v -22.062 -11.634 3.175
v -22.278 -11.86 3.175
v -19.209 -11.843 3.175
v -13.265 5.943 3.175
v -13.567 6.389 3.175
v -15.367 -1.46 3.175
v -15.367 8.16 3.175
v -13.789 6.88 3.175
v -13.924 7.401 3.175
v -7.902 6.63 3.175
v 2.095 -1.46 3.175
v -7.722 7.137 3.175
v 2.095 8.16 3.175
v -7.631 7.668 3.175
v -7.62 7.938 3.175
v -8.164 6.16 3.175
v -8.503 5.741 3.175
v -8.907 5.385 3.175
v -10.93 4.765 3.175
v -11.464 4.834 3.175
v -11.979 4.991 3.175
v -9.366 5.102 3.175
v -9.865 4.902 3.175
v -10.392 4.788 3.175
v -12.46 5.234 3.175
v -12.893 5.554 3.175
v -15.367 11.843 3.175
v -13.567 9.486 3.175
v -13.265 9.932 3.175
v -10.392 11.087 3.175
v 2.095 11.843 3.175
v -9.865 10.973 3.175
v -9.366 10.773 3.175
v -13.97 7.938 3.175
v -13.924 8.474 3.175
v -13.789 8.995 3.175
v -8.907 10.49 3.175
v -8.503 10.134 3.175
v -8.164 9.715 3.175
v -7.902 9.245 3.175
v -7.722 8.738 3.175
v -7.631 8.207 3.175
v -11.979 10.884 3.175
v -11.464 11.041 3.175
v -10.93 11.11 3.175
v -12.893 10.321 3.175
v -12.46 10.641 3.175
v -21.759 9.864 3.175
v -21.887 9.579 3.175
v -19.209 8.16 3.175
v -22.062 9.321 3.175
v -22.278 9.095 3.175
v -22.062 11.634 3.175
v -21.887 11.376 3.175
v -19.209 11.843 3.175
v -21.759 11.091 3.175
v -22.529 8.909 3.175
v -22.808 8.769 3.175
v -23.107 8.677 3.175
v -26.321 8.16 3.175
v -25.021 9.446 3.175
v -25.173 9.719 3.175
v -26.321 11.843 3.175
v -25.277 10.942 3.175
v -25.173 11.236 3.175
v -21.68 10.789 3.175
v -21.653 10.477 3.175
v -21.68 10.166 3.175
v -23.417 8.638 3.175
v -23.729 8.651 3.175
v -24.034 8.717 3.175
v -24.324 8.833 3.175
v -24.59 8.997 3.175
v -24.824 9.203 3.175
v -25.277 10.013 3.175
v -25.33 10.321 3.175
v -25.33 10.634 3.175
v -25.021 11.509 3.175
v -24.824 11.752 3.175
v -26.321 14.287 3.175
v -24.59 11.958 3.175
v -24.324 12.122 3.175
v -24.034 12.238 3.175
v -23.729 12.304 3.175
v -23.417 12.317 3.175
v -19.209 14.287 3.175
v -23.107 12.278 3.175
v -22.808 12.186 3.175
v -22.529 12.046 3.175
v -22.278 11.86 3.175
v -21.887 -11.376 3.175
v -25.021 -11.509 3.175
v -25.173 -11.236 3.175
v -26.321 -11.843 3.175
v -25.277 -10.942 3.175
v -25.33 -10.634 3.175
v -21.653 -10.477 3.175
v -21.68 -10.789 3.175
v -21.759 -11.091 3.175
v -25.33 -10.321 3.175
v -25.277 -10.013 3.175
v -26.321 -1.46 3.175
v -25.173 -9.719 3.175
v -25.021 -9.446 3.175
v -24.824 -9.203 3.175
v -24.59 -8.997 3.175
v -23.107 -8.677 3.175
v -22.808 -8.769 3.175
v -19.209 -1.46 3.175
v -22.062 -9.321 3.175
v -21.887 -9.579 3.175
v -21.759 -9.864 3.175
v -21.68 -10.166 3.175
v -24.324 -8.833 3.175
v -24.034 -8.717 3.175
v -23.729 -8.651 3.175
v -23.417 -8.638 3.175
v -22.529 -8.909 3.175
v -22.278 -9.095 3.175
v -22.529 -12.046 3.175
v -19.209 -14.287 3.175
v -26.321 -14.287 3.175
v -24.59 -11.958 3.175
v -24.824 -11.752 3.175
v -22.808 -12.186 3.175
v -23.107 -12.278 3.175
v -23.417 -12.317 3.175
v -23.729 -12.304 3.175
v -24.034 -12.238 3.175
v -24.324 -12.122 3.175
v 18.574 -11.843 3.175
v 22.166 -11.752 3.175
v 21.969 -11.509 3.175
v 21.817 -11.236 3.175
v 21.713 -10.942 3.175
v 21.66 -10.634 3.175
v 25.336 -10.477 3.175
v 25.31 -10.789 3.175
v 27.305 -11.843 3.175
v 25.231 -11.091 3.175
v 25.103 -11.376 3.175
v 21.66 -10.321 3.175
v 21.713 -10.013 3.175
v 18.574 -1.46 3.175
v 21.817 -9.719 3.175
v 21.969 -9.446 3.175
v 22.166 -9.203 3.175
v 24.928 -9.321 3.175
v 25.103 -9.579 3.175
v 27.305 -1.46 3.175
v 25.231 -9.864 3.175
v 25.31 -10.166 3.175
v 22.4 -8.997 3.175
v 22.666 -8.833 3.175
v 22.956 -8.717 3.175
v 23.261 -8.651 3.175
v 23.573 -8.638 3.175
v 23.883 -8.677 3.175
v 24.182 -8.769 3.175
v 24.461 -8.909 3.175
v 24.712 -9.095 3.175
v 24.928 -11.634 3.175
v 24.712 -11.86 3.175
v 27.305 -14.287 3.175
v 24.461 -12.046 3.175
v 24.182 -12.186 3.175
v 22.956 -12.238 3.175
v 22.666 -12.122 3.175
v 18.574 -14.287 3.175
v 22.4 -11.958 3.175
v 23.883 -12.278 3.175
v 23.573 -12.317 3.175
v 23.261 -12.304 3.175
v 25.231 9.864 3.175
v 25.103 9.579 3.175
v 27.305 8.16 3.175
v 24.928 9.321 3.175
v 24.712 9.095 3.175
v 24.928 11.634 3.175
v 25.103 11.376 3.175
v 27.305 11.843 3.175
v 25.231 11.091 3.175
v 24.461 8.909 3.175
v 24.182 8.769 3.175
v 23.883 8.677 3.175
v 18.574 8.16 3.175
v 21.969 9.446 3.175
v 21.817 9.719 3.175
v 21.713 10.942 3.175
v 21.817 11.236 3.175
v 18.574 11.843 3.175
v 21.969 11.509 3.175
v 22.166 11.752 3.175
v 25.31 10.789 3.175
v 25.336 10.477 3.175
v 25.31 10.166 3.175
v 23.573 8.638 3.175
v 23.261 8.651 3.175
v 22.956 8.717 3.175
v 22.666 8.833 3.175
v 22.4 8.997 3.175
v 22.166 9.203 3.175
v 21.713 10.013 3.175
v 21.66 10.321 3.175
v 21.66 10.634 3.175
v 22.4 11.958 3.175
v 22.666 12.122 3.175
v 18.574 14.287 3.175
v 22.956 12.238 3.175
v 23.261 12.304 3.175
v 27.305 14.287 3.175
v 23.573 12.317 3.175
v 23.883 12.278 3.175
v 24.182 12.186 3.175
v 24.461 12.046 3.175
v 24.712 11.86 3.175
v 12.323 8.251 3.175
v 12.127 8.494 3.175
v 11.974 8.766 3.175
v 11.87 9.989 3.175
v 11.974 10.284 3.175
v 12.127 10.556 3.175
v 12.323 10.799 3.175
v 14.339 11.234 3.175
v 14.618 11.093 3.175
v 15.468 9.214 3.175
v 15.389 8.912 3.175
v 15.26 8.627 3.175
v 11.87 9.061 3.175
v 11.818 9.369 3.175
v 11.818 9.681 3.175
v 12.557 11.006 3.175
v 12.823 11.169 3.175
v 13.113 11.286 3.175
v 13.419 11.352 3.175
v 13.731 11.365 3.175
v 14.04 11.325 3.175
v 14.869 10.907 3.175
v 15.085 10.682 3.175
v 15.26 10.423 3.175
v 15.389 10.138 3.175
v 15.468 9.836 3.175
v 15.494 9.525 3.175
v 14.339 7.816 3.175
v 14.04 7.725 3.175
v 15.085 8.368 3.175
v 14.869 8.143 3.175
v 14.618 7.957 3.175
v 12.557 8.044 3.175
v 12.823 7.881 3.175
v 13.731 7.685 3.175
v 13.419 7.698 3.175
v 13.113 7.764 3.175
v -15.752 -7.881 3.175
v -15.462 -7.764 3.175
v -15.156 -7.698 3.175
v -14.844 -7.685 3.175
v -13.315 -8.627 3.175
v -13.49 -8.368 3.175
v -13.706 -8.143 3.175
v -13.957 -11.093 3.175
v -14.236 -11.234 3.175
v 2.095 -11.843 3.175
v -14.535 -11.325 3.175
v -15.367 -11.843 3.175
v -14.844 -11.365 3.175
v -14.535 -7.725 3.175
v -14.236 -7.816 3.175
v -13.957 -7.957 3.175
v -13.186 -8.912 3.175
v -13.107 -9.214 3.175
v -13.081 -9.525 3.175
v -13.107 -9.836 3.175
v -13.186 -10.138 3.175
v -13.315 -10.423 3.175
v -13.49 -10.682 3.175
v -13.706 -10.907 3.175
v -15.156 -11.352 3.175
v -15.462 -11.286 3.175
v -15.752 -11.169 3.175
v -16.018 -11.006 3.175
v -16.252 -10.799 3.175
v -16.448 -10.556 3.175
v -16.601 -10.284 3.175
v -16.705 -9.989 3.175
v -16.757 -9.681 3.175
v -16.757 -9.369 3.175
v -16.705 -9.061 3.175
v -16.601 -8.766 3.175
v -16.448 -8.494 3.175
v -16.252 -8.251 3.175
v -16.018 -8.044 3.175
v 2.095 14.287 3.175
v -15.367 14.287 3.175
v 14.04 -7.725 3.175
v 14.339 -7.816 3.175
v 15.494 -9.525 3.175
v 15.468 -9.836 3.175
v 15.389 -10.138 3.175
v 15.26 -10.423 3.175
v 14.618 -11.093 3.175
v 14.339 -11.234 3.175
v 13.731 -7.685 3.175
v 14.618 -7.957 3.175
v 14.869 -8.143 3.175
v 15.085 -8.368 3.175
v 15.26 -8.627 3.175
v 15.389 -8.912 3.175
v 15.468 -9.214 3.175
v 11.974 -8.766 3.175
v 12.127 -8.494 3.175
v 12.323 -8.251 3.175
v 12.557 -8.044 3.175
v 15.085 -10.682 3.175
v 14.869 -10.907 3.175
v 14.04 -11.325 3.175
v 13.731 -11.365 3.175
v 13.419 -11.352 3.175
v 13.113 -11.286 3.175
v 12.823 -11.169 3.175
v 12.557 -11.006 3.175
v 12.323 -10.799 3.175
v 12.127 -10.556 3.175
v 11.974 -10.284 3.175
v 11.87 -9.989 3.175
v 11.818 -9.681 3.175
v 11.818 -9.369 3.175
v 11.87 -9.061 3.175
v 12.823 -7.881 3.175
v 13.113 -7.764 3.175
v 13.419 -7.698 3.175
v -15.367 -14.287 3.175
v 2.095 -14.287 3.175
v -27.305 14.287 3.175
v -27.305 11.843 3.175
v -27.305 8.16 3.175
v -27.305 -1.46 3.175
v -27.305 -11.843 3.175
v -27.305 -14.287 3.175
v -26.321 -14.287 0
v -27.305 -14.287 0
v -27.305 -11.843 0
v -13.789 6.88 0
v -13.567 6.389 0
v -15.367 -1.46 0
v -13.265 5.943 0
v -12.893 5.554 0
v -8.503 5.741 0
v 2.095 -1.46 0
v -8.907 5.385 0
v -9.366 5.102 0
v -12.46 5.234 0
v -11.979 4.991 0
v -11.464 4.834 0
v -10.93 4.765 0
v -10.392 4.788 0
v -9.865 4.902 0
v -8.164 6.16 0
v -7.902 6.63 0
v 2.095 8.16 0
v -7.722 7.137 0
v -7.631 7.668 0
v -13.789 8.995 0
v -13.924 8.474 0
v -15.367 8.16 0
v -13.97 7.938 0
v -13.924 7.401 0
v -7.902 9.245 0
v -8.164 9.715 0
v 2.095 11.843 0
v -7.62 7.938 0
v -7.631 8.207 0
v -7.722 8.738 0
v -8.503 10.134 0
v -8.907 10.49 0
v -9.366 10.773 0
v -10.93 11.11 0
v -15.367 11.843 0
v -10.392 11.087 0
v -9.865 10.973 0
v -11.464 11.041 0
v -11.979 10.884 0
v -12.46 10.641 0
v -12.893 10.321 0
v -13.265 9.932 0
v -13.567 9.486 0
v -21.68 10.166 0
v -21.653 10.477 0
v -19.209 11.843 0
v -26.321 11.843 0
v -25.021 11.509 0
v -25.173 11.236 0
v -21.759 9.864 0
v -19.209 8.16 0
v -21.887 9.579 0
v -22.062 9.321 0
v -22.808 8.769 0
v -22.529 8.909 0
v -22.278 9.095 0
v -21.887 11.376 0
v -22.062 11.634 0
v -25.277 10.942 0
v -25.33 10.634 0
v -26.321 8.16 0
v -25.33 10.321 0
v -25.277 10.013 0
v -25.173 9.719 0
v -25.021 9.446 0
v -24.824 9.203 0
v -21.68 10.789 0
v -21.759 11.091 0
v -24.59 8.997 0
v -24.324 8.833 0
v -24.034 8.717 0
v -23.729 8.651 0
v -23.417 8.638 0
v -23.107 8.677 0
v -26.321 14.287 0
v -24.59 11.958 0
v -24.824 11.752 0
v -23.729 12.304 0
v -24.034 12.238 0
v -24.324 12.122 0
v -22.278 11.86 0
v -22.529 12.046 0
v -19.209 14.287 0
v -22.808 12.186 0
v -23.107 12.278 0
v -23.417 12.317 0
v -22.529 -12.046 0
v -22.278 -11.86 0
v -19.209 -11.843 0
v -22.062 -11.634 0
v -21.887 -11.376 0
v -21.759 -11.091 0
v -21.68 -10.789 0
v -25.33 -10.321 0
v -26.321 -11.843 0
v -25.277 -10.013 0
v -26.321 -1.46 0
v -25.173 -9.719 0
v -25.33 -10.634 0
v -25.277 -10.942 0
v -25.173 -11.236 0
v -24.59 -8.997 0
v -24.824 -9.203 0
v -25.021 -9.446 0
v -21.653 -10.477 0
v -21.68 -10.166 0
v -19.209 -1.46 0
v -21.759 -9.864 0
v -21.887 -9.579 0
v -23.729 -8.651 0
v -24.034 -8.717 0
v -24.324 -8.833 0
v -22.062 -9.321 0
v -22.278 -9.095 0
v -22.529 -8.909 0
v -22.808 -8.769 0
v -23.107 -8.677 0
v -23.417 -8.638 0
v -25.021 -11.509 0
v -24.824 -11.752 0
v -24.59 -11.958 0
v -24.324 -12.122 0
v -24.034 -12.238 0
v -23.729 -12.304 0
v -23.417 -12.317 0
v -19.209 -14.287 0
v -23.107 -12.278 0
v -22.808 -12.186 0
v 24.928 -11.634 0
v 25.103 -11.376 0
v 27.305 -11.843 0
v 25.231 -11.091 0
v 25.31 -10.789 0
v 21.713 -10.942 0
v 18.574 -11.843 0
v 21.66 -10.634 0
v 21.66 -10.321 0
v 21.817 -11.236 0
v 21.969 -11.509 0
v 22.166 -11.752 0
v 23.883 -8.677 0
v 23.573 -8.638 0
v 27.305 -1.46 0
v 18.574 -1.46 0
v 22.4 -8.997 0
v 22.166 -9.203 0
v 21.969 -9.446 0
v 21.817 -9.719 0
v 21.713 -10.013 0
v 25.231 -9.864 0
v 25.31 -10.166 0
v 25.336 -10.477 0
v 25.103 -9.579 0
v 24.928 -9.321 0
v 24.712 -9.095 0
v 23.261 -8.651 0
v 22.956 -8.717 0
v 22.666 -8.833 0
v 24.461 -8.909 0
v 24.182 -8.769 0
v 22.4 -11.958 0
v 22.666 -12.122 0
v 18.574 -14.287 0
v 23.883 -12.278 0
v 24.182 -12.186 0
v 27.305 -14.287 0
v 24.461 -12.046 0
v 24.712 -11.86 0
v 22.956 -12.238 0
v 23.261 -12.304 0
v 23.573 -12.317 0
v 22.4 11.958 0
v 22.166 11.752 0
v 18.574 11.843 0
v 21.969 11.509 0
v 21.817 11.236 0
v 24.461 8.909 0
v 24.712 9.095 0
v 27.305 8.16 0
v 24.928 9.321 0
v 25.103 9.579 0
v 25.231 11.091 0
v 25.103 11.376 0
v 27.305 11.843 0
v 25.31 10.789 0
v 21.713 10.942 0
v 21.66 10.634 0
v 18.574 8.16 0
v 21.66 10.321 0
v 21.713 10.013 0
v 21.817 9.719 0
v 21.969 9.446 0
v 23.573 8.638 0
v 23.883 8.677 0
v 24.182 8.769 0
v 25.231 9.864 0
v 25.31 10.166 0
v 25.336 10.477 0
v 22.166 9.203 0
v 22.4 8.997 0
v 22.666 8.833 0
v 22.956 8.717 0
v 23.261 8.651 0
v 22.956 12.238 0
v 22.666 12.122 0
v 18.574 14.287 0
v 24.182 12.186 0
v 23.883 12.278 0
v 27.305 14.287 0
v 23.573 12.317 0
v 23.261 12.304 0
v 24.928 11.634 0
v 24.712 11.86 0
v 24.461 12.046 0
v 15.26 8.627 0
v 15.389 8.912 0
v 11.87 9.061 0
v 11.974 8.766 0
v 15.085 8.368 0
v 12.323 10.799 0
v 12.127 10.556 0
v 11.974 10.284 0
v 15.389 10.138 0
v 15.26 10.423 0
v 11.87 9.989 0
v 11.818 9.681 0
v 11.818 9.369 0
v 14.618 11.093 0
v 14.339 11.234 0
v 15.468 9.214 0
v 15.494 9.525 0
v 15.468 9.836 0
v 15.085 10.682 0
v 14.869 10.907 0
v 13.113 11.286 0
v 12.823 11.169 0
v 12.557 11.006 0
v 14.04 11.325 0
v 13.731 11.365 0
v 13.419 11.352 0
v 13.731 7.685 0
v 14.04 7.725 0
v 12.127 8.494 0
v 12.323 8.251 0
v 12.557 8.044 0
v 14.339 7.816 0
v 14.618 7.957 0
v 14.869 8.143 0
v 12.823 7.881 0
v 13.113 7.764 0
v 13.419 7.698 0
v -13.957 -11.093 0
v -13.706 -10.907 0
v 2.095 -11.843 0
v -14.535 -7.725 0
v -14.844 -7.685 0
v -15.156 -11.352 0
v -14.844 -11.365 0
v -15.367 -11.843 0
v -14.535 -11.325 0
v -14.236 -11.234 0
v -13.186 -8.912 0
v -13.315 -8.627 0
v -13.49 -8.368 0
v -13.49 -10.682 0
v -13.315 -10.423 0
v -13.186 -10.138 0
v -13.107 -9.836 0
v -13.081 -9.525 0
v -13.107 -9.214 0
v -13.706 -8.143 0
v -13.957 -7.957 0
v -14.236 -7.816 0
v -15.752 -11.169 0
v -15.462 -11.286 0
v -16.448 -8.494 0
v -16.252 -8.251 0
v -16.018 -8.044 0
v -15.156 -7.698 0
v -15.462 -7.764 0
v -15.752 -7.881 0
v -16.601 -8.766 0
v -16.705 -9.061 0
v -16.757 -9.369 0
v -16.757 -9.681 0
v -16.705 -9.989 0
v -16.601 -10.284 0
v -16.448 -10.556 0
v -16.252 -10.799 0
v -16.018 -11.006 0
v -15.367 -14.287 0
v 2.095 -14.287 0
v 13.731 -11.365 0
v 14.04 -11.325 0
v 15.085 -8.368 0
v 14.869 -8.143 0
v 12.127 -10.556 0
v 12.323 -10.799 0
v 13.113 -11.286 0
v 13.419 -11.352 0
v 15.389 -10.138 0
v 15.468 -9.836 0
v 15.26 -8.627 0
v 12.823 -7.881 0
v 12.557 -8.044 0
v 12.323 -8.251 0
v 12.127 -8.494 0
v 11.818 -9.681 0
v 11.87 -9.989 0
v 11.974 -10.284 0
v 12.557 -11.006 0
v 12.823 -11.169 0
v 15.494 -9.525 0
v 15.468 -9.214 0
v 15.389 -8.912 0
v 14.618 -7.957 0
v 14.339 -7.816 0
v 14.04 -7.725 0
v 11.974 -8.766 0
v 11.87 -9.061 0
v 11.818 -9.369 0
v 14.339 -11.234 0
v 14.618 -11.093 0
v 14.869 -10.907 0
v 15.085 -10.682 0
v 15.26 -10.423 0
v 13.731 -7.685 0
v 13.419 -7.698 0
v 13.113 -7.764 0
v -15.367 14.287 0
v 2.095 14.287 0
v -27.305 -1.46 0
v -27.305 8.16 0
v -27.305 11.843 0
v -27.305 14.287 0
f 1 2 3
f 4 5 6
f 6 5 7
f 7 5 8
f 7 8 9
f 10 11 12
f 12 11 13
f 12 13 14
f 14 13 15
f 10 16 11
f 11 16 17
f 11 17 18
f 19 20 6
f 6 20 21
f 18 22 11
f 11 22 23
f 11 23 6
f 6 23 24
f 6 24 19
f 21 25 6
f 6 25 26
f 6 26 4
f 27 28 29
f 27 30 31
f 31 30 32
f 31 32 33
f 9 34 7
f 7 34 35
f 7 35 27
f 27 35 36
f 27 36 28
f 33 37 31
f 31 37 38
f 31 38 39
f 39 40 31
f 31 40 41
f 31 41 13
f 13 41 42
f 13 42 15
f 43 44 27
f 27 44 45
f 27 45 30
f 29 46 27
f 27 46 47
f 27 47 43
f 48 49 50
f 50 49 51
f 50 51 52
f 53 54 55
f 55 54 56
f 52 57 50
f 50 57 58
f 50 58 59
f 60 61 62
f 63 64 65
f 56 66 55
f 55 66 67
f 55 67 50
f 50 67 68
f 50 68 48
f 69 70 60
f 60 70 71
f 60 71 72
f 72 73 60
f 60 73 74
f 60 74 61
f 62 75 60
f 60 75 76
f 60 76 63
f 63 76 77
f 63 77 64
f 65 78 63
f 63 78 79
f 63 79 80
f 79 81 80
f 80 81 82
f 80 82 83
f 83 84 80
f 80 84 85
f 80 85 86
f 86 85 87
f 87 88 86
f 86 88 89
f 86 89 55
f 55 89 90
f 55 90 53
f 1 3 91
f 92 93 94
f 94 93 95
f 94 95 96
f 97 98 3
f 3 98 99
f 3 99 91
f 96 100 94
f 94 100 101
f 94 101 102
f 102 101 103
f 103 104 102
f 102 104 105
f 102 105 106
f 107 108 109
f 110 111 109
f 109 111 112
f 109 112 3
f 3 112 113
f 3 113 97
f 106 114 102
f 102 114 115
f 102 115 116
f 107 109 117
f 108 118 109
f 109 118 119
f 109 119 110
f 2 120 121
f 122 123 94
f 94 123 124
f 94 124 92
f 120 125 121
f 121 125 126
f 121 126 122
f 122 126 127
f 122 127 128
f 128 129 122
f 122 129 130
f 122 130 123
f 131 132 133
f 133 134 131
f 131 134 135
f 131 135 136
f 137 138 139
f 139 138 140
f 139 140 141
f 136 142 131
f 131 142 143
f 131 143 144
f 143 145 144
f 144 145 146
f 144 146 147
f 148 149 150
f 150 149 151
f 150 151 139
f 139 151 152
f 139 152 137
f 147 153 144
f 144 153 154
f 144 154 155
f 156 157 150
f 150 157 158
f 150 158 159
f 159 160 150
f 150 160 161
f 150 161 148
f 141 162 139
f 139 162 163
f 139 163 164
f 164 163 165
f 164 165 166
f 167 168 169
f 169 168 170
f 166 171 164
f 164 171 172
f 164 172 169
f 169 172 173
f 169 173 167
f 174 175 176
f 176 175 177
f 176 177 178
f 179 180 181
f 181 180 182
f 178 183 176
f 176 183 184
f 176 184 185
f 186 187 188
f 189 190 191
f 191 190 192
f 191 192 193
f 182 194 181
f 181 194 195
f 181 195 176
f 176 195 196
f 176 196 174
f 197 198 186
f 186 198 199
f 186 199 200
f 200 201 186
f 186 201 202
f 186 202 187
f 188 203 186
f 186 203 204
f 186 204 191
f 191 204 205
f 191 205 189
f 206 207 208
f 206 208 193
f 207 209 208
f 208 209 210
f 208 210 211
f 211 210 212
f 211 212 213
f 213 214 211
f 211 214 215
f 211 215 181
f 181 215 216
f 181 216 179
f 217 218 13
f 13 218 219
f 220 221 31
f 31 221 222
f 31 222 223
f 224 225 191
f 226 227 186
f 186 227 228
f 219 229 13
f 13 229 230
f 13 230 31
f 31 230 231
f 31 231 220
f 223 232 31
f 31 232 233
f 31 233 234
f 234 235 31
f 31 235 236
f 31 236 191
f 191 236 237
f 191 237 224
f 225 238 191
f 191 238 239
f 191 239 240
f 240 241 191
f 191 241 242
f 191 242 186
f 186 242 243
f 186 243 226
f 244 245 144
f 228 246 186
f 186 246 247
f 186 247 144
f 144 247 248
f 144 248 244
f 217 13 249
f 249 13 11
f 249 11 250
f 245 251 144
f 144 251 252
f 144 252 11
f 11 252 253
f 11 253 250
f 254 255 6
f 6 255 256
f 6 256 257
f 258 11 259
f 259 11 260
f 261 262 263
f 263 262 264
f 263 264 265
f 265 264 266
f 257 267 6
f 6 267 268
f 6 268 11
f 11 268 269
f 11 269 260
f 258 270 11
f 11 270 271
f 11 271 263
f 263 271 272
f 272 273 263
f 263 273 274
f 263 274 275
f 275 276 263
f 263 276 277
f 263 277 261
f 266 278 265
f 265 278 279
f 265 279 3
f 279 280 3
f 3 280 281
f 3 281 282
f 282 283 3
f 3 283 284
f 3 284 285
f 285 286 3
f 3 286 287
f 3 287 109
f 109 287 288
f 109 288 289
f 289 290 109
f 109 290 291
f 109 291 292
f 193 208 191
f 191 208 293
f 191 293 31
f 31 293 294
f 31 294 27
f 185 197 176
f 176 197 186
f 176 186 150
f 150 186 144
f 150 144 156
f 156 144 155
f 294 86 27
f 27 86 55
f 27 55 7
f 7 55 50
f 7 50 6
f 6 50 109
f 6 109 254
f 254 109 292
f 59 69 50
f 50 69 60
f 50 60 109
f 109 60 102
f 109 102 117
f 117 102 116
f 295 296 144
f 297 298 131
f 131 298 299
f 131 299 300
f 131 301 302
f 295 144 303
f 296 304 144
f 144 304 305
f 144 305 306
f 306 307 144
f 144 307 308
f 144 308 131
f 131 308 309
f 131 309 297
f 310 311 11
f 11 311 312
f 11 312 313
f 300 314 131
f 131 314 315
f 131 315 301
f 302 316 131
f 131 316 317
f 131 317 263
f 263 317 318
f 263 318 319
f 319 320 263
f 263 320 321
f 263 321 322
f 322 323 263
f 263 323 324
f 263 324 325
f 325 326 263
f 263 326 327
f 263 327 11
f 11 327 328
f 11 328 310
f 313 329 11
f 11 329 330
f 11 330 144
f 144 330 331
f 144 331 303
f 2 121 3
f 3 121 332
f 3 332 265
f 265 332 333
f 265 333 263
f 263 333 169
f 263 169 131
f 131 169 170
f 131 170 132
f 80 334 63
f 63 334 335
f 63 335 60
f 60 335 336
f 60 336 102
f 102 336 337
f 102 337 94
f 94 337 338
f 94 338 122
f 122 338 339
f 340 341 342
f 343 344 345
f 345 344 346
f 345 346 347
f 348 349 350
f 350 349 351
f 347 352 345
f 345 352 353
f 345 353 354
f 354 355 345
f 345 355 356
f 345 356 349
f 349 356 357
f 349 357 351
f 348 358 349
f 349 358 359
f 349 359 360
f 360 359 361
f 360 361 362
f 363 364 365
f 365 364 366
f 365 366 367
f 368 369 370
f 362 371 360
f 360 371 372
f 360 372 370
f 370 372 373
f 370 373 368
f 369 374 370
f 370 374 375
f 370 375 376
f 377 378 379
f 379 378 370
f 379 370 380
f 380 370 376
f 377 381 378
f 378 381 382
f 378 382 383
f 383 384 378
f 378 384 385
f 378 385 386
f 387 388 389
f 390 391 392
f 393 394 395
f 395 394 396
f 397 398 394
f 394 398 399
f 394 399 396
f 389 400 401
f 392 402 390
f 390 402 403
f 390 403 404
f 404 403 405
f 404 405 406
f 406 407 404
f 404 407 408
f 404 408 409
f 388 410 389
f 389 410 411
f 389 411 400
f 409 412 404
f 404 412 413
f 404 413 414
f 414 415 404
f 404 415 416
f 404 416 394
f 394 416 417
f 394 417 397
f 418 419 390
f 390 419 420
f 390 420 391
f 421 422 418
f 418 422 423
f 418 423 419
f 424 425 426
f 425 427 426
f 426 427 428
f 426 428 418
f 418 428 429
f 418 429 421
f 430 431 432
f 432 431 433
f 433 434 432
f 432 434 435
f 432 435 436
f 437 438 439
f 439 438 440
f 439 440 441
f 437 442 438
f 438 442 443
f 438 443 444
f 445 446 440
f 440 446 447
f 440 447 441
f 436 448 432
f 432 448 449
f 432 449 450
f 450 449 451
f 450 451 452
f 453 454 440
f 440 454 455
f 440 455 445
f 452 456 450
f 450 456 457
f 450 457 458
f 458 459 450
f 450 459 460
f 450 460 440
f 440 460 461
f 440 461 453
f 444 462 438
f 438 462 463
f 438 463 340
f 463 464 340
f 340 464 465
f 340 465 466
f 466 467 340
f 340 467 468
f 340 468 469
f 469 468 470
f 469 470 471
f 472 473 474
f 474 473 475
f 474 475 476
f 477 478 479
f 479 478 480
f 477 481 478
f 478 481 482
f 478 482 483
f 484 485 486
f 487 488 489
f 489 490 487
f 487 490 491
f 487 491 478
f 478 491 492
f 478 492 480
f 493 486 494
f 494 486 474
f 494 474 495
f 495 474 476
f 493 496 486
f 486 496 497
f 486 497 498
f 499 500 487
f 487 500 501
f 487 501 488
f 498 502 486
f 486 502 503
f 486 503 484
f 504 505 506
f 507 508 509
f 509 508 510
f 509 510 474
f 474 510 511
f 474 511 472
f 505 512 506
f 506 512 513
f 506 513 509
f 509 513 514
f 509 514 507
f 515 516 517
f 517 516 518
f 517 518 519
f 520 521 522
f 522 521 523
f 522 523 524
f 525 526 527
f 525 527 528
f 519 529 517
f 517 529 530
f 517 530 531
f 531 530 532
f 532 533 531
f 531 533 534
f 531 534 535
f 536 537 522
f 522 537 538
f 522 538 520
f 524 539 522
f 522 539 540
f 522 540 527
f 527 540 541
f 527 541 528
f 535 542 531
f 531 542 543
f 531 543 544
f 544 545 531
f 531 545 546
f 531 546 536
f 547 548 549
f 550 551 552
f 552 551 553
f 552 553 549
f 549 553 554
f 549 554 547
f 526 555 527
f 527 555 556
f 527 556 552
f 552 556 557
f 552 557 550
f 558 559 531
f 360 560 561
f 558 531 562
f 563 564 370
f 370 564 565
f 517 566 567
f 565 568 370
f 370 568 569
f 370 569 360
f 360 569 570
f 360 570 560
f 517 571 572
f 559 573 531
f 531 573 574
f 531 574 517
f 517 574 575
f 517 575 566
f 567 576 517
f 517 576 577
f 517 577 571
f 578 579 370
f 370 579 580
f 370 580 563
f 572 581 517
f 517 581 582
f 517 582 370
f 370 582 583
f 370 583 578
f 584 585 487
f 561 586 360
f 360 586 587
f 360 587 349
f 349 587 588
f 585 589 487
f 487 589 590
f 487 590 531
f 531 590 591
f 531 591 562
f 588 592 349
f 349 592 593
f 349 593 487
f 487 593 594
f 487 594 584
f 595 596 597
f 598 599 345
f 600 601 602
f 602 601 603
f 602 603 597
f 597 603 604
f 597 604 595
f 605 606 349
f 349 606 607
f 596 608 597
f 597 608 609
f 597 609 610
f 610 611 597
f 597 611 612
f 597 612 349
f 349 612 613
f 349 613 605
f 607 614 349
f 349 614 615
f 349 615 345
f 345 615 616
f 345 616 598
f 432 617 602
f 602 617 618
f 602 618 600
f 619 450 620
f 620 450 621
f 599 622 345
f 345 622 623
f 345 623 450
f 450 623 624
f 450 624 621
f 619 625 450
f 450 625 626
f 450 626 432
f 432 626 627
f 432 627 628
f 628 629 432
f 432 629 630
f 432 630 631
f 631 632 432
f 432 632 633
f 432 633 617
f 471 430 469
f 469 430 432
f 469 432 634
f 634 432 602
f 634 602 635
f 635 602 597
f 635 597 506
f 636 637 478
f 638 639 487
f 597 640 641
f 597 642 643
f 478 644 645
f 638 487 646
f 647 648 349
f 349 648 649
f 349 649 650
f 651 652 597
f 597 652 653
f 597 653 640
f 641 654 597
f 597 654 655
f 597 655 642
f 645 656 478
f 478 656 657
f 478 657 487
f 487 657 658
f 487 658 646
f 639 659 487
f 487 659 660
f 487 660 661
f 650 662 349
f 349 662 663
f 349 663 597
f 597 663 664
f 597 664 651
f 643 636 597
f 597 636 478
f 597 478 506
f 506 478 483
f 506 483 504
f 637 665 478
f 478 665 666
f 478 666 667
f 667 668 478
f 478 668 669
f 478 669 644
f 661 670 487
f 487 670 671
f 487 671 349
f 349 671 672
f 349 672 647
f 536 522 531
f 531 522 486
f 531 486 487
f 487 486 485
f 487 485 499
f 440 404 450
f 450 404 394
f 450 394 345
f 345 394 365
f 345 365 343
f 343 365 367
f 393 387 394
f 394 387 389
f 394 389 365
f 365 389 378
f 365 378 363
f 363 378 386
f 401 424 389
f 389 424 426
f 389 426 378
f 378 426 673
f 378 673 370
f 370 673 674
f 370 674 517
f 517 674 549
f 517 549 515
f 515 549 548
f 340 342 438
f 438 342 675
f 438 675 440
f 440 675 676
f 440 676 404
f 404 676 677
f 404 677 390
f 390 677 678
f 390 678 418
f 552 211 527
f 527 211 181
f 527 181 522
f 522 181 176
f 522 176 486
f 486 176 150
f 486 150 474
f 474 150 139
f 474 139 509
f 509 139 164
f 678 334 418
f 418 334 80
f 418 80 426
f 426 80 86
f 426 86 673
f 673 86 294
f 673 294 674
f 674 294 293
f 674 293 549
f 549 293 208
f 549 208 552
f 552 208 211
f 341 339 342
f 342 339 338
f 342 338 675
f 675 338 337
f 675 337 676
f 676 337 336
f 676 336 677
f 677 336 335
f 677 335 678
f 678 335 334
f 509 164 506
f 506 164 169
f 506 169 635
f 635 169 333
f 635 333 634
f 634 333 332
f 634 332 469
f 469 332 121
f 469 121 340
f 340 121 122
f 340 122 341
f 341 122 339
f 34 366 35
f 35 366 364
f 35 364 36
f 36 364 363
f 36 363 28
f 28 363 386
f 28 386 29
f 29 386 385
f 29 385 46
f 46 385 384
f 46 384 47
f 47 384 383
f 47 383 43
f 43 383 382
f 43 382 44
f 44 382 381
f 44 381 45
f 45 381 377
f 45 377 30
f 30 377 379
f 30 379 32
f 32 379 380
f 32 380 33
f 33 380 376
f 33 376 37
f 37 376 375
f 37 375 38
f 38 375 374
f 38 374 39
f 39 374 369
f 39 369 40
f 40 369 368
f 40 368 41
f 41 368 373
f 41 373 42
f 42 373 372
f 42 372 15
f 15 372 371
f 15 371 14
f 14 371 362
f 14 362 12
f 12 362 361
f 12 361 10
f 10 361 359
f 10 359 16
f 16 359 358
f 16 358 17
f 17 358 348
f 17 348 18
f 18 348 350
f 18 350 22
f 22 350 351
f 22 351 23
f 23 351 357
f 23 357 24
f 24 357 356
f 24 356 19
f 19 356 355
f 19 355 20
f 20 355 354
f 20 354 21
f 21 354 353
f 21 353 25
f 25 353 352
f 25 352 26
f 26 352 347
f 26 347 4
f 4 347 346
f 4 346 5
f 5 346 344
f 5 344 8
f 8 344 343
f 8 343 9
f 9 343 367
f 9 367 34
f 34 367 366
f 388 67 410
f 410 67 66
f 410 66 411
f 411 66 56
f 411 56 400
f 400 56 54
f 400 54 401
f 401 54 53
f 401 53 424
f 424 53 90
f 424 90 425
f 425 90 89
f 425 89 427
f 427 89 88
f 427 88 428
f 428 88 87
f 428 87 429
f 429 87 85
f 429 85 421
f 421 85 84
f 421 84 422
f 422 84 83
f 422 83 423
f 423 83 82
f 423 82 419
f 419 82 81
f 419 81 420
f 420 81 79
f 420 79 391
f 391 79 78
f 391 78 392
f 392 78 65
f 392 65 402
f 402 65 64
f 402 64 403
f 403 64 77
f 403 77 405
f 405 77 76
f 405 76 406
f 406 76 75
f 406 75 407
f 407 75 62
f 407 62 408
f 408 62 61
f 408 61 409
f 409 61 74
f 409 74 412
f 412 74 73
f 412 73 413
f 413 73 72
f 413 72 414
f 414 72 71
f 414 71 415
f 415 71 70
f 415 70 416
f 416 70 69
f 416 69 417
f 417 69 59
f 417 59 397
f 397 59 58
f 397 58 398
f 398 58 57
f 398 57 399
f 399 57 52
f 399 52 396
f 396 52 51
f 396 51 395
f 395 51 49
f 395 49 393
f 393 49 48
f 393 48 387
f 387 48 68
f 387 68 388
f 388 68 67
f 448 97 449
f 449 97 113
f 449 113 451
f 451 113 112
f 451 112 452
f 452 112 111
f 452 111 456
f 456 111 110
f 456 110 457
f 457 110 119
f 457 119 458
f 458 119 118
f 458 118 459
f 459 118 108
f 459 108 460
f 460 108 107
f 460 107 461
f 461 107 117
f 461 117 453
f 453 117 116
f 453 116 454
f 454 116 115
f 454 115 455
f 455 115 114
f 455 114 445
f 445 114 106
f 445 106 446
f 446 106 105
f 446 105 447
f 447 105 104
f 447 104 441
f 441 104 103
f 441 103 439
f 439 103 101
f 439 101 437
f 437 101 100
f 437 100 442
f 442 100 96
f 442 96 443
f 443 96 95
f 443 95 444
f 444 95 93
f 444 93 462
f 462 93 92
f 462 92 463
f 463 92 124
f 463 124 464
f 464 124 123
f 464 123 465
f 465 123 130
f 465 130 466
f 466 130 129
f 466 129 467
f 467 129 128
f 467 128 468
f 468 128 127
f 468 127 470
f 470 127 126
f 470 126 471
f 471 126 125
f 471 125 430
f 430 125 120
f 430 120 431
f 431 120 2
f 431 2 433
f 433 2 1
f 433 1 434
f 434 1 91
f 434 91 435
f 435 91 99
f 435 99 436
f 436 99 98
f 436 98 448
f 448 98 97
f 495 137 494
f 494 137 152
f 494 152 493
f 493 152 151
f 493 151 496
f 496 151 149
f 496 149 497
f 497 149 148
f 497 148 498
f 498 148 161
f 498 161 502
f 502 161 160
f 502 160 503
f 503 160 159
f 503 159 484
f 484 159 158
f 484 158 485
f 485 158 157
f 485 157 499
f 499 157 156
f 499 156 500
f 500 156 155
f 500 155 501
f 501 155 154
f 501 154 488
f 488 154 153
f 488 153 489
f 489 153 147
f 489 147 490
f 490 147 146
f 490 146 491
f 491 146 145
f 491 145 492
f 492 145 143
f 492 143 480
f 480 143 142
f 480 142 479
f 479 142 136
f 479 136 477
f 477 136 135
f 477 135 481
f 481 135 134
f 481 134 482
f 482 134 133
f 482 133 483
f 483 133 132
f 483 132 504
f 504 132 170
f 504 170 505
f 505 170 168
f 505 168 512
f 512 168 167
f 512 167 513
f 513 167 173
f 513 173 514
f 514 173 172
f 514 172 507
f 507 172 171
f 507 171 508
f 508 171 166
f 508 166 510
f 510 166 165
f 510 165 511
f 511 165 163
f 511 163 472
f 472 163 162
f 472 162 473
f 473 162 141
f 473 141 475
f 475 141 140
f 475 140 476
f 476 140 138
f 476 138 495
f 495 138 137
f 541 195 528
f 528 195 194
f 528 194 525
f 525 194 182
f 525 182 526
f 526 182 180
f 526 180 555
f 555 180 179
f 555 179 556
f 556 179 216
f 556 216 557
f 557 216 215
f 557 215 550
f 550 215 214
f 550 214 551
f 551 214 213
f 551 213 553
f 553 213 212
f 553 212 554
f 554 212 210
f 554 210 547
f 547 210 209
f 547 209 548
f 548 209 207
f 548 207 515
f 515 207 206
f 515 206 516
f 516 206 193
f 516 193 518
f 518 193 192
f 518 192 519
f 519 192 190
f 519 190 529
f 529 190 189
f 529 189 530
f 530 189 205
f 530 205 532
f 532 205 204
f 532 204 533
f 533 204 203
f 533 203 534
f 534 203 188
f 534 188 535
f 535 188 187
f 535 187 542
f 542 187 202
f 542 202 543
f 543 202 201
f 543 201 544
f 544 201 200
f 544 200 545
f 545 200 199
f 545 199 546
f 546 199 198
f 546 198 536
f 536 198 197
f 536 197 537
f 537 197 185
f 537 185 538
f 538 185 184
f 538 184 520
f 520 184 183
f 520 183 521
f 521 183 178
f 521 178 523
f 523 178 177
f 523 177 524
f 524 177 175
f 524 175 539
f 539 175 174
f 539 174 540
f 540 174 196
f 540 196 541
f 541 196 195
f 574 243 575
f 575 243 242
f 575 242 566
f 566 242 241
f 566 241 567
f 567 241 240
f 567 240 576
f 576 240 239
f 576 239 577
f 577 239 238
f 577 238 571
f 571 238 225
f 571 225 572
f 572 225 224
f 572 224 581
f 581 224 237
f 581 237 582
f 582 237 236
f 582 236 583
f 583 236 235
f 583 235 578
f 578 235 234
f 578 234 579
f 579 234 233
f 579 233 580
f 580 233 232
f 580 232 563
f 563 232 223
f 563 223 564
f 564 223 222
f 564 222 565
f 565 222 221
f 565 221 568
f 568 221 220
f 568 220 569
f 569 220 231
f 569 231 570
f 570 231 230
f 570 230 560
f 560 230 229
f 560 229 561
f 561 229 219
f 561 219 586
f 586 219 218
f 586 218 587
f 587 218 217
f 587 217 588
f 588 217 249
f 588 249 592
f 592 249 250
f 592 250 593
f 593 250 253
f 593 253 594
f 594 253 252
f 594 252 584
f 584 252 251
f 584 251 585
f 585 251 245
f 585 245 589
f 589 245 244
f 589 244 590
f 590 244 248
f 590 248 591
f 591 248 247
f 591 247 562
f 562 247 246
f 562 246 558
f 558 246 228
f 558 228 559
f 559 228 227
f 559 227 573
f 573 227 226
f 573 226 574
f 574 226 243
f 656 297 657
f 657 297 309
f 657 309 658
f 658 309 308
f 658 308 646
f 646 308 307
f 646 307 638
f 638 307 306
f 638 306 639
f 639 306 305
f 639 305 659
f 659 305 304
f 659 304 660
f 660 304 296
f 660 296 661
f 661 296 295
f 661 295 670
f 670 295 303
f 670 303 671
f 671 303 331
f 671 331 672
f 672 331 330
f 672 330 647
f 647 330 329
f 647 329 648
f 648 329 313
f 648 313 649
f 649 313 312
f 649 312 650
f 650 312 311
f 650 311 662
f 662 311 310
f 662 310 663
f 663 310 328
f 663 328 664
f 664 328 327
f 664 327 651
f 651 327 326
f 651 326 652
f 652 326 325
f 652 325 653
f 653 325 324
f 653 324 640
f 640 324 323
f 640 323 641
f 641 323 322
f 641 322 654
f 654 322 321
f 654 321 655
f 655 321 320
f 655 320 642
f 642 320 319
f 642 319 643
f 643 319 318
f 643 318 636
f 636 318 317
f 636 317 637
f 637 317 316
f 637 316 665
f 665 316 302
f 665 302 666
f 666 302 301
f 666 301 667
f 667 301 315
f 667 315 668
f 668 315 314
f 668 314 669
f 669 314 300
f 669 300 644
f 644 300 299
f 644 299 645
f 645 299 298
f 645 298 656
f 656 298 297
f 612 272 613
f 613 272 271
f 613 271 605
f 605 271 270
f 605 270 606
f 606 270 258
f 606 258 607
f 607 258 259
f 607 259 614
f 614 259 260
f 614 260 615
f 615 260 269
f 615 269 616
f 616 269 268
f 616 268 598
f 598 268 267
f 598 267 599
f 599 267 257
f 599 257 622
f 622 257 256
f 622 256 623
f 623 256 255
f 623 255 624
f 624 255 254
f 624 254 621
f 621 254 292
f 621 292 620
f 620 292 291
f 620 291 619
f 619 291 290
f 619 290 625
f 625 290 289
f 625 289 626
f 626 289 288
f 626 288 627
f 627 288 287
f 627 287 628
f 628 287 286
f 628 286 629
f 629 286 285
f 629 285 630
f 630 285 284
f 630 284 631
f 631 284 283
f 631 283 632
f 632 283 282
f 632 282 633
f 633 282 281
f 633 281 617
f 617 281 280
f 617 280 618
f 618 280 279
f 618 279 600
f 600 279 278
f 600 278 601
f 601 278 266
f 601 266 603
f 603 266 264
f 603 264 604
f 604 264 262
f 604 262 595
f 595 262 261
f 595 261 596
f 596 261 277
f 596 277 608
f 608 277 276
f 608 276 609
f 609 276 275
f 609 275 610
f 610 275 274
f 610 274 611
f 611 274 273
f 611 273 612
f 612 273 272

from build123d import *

# Parameters (mm, degrees)
SKETCH1_W           = 54.61
SKETCH1_H           = 28.575
SKETCH1_R           = 3.175
BOSS_EXTRUDE1_DEPTH = 3.175
SKETCH2_R           = 1.8415
CUT_EXTRUDE1_DEPTH  = 31.980256717
SKETCH4_R           = 1.8415
CUT_EXTRUDE2_DEPTH  = 31.980256717
SKETCH5_R           = 1.8415
CUT_EXTRUDE3_DEPTH  = 31.980256717


with BuildPart() as part:
    # Sketch1 → Boss-Extrude1 (new body)
    with BuildSketch(Plane.XY):
        Rectangle(SKETCH1_W, SKETCH1_H)
        with Locations((-10.795, 7.9375)):
            Circle(SKETCH1_R, mode=Mode.SUBTRACT)
    extrude(amount=BOSS_EXTRUDE1_DEPTH)

    # Sketch2 → Cut-Extrude1 (cut, through all)
    with BuildSketch(Plane.XY.offset(3.175)):
        with Locations((-23.495, 10.4775)):
            Circle(SKETCH2_R)
        with Locations((-23.495, -10.4775)):
            Circle(SKETCH2_R)
        with Locations((23.495, -10.4775)):
            Circle(SKETCH2_R)
        with Locations((23.495, 10.4775)):
            Circle(SKETCH2_R)
    extrude(amount=-CUT_EXTRUDE1_DEPTH, mode=Mode.SUBTRACT)

    # Sketch4 → Cut-Extrude2 (cut, through all)
    with BuildSketch(Plane.XY.offset(3.175)):
        with Locations((13.6525, 9.525)):
            Circle(SKETCH4_R)
    extrude(amount=-CUT_EXTRUDE2_DEPTH, mode=Mode.SUBTRACT)

    # Sketch5 → Cut-Extrude3 (cut, through all)
    with BuildSketch(Plane.XY.offset(3.175)):
        with Locations((-14.9225, -9.525)):
            Circle(SKETCH5_R)
        with Locations((13.6525, -9.525)):
            Circle(SKETCH5_R)
    extrude(amount=-CUT_EXTRUDE3_DEPTH, mode=Mode.SUBTRACT)


solid = part.part
